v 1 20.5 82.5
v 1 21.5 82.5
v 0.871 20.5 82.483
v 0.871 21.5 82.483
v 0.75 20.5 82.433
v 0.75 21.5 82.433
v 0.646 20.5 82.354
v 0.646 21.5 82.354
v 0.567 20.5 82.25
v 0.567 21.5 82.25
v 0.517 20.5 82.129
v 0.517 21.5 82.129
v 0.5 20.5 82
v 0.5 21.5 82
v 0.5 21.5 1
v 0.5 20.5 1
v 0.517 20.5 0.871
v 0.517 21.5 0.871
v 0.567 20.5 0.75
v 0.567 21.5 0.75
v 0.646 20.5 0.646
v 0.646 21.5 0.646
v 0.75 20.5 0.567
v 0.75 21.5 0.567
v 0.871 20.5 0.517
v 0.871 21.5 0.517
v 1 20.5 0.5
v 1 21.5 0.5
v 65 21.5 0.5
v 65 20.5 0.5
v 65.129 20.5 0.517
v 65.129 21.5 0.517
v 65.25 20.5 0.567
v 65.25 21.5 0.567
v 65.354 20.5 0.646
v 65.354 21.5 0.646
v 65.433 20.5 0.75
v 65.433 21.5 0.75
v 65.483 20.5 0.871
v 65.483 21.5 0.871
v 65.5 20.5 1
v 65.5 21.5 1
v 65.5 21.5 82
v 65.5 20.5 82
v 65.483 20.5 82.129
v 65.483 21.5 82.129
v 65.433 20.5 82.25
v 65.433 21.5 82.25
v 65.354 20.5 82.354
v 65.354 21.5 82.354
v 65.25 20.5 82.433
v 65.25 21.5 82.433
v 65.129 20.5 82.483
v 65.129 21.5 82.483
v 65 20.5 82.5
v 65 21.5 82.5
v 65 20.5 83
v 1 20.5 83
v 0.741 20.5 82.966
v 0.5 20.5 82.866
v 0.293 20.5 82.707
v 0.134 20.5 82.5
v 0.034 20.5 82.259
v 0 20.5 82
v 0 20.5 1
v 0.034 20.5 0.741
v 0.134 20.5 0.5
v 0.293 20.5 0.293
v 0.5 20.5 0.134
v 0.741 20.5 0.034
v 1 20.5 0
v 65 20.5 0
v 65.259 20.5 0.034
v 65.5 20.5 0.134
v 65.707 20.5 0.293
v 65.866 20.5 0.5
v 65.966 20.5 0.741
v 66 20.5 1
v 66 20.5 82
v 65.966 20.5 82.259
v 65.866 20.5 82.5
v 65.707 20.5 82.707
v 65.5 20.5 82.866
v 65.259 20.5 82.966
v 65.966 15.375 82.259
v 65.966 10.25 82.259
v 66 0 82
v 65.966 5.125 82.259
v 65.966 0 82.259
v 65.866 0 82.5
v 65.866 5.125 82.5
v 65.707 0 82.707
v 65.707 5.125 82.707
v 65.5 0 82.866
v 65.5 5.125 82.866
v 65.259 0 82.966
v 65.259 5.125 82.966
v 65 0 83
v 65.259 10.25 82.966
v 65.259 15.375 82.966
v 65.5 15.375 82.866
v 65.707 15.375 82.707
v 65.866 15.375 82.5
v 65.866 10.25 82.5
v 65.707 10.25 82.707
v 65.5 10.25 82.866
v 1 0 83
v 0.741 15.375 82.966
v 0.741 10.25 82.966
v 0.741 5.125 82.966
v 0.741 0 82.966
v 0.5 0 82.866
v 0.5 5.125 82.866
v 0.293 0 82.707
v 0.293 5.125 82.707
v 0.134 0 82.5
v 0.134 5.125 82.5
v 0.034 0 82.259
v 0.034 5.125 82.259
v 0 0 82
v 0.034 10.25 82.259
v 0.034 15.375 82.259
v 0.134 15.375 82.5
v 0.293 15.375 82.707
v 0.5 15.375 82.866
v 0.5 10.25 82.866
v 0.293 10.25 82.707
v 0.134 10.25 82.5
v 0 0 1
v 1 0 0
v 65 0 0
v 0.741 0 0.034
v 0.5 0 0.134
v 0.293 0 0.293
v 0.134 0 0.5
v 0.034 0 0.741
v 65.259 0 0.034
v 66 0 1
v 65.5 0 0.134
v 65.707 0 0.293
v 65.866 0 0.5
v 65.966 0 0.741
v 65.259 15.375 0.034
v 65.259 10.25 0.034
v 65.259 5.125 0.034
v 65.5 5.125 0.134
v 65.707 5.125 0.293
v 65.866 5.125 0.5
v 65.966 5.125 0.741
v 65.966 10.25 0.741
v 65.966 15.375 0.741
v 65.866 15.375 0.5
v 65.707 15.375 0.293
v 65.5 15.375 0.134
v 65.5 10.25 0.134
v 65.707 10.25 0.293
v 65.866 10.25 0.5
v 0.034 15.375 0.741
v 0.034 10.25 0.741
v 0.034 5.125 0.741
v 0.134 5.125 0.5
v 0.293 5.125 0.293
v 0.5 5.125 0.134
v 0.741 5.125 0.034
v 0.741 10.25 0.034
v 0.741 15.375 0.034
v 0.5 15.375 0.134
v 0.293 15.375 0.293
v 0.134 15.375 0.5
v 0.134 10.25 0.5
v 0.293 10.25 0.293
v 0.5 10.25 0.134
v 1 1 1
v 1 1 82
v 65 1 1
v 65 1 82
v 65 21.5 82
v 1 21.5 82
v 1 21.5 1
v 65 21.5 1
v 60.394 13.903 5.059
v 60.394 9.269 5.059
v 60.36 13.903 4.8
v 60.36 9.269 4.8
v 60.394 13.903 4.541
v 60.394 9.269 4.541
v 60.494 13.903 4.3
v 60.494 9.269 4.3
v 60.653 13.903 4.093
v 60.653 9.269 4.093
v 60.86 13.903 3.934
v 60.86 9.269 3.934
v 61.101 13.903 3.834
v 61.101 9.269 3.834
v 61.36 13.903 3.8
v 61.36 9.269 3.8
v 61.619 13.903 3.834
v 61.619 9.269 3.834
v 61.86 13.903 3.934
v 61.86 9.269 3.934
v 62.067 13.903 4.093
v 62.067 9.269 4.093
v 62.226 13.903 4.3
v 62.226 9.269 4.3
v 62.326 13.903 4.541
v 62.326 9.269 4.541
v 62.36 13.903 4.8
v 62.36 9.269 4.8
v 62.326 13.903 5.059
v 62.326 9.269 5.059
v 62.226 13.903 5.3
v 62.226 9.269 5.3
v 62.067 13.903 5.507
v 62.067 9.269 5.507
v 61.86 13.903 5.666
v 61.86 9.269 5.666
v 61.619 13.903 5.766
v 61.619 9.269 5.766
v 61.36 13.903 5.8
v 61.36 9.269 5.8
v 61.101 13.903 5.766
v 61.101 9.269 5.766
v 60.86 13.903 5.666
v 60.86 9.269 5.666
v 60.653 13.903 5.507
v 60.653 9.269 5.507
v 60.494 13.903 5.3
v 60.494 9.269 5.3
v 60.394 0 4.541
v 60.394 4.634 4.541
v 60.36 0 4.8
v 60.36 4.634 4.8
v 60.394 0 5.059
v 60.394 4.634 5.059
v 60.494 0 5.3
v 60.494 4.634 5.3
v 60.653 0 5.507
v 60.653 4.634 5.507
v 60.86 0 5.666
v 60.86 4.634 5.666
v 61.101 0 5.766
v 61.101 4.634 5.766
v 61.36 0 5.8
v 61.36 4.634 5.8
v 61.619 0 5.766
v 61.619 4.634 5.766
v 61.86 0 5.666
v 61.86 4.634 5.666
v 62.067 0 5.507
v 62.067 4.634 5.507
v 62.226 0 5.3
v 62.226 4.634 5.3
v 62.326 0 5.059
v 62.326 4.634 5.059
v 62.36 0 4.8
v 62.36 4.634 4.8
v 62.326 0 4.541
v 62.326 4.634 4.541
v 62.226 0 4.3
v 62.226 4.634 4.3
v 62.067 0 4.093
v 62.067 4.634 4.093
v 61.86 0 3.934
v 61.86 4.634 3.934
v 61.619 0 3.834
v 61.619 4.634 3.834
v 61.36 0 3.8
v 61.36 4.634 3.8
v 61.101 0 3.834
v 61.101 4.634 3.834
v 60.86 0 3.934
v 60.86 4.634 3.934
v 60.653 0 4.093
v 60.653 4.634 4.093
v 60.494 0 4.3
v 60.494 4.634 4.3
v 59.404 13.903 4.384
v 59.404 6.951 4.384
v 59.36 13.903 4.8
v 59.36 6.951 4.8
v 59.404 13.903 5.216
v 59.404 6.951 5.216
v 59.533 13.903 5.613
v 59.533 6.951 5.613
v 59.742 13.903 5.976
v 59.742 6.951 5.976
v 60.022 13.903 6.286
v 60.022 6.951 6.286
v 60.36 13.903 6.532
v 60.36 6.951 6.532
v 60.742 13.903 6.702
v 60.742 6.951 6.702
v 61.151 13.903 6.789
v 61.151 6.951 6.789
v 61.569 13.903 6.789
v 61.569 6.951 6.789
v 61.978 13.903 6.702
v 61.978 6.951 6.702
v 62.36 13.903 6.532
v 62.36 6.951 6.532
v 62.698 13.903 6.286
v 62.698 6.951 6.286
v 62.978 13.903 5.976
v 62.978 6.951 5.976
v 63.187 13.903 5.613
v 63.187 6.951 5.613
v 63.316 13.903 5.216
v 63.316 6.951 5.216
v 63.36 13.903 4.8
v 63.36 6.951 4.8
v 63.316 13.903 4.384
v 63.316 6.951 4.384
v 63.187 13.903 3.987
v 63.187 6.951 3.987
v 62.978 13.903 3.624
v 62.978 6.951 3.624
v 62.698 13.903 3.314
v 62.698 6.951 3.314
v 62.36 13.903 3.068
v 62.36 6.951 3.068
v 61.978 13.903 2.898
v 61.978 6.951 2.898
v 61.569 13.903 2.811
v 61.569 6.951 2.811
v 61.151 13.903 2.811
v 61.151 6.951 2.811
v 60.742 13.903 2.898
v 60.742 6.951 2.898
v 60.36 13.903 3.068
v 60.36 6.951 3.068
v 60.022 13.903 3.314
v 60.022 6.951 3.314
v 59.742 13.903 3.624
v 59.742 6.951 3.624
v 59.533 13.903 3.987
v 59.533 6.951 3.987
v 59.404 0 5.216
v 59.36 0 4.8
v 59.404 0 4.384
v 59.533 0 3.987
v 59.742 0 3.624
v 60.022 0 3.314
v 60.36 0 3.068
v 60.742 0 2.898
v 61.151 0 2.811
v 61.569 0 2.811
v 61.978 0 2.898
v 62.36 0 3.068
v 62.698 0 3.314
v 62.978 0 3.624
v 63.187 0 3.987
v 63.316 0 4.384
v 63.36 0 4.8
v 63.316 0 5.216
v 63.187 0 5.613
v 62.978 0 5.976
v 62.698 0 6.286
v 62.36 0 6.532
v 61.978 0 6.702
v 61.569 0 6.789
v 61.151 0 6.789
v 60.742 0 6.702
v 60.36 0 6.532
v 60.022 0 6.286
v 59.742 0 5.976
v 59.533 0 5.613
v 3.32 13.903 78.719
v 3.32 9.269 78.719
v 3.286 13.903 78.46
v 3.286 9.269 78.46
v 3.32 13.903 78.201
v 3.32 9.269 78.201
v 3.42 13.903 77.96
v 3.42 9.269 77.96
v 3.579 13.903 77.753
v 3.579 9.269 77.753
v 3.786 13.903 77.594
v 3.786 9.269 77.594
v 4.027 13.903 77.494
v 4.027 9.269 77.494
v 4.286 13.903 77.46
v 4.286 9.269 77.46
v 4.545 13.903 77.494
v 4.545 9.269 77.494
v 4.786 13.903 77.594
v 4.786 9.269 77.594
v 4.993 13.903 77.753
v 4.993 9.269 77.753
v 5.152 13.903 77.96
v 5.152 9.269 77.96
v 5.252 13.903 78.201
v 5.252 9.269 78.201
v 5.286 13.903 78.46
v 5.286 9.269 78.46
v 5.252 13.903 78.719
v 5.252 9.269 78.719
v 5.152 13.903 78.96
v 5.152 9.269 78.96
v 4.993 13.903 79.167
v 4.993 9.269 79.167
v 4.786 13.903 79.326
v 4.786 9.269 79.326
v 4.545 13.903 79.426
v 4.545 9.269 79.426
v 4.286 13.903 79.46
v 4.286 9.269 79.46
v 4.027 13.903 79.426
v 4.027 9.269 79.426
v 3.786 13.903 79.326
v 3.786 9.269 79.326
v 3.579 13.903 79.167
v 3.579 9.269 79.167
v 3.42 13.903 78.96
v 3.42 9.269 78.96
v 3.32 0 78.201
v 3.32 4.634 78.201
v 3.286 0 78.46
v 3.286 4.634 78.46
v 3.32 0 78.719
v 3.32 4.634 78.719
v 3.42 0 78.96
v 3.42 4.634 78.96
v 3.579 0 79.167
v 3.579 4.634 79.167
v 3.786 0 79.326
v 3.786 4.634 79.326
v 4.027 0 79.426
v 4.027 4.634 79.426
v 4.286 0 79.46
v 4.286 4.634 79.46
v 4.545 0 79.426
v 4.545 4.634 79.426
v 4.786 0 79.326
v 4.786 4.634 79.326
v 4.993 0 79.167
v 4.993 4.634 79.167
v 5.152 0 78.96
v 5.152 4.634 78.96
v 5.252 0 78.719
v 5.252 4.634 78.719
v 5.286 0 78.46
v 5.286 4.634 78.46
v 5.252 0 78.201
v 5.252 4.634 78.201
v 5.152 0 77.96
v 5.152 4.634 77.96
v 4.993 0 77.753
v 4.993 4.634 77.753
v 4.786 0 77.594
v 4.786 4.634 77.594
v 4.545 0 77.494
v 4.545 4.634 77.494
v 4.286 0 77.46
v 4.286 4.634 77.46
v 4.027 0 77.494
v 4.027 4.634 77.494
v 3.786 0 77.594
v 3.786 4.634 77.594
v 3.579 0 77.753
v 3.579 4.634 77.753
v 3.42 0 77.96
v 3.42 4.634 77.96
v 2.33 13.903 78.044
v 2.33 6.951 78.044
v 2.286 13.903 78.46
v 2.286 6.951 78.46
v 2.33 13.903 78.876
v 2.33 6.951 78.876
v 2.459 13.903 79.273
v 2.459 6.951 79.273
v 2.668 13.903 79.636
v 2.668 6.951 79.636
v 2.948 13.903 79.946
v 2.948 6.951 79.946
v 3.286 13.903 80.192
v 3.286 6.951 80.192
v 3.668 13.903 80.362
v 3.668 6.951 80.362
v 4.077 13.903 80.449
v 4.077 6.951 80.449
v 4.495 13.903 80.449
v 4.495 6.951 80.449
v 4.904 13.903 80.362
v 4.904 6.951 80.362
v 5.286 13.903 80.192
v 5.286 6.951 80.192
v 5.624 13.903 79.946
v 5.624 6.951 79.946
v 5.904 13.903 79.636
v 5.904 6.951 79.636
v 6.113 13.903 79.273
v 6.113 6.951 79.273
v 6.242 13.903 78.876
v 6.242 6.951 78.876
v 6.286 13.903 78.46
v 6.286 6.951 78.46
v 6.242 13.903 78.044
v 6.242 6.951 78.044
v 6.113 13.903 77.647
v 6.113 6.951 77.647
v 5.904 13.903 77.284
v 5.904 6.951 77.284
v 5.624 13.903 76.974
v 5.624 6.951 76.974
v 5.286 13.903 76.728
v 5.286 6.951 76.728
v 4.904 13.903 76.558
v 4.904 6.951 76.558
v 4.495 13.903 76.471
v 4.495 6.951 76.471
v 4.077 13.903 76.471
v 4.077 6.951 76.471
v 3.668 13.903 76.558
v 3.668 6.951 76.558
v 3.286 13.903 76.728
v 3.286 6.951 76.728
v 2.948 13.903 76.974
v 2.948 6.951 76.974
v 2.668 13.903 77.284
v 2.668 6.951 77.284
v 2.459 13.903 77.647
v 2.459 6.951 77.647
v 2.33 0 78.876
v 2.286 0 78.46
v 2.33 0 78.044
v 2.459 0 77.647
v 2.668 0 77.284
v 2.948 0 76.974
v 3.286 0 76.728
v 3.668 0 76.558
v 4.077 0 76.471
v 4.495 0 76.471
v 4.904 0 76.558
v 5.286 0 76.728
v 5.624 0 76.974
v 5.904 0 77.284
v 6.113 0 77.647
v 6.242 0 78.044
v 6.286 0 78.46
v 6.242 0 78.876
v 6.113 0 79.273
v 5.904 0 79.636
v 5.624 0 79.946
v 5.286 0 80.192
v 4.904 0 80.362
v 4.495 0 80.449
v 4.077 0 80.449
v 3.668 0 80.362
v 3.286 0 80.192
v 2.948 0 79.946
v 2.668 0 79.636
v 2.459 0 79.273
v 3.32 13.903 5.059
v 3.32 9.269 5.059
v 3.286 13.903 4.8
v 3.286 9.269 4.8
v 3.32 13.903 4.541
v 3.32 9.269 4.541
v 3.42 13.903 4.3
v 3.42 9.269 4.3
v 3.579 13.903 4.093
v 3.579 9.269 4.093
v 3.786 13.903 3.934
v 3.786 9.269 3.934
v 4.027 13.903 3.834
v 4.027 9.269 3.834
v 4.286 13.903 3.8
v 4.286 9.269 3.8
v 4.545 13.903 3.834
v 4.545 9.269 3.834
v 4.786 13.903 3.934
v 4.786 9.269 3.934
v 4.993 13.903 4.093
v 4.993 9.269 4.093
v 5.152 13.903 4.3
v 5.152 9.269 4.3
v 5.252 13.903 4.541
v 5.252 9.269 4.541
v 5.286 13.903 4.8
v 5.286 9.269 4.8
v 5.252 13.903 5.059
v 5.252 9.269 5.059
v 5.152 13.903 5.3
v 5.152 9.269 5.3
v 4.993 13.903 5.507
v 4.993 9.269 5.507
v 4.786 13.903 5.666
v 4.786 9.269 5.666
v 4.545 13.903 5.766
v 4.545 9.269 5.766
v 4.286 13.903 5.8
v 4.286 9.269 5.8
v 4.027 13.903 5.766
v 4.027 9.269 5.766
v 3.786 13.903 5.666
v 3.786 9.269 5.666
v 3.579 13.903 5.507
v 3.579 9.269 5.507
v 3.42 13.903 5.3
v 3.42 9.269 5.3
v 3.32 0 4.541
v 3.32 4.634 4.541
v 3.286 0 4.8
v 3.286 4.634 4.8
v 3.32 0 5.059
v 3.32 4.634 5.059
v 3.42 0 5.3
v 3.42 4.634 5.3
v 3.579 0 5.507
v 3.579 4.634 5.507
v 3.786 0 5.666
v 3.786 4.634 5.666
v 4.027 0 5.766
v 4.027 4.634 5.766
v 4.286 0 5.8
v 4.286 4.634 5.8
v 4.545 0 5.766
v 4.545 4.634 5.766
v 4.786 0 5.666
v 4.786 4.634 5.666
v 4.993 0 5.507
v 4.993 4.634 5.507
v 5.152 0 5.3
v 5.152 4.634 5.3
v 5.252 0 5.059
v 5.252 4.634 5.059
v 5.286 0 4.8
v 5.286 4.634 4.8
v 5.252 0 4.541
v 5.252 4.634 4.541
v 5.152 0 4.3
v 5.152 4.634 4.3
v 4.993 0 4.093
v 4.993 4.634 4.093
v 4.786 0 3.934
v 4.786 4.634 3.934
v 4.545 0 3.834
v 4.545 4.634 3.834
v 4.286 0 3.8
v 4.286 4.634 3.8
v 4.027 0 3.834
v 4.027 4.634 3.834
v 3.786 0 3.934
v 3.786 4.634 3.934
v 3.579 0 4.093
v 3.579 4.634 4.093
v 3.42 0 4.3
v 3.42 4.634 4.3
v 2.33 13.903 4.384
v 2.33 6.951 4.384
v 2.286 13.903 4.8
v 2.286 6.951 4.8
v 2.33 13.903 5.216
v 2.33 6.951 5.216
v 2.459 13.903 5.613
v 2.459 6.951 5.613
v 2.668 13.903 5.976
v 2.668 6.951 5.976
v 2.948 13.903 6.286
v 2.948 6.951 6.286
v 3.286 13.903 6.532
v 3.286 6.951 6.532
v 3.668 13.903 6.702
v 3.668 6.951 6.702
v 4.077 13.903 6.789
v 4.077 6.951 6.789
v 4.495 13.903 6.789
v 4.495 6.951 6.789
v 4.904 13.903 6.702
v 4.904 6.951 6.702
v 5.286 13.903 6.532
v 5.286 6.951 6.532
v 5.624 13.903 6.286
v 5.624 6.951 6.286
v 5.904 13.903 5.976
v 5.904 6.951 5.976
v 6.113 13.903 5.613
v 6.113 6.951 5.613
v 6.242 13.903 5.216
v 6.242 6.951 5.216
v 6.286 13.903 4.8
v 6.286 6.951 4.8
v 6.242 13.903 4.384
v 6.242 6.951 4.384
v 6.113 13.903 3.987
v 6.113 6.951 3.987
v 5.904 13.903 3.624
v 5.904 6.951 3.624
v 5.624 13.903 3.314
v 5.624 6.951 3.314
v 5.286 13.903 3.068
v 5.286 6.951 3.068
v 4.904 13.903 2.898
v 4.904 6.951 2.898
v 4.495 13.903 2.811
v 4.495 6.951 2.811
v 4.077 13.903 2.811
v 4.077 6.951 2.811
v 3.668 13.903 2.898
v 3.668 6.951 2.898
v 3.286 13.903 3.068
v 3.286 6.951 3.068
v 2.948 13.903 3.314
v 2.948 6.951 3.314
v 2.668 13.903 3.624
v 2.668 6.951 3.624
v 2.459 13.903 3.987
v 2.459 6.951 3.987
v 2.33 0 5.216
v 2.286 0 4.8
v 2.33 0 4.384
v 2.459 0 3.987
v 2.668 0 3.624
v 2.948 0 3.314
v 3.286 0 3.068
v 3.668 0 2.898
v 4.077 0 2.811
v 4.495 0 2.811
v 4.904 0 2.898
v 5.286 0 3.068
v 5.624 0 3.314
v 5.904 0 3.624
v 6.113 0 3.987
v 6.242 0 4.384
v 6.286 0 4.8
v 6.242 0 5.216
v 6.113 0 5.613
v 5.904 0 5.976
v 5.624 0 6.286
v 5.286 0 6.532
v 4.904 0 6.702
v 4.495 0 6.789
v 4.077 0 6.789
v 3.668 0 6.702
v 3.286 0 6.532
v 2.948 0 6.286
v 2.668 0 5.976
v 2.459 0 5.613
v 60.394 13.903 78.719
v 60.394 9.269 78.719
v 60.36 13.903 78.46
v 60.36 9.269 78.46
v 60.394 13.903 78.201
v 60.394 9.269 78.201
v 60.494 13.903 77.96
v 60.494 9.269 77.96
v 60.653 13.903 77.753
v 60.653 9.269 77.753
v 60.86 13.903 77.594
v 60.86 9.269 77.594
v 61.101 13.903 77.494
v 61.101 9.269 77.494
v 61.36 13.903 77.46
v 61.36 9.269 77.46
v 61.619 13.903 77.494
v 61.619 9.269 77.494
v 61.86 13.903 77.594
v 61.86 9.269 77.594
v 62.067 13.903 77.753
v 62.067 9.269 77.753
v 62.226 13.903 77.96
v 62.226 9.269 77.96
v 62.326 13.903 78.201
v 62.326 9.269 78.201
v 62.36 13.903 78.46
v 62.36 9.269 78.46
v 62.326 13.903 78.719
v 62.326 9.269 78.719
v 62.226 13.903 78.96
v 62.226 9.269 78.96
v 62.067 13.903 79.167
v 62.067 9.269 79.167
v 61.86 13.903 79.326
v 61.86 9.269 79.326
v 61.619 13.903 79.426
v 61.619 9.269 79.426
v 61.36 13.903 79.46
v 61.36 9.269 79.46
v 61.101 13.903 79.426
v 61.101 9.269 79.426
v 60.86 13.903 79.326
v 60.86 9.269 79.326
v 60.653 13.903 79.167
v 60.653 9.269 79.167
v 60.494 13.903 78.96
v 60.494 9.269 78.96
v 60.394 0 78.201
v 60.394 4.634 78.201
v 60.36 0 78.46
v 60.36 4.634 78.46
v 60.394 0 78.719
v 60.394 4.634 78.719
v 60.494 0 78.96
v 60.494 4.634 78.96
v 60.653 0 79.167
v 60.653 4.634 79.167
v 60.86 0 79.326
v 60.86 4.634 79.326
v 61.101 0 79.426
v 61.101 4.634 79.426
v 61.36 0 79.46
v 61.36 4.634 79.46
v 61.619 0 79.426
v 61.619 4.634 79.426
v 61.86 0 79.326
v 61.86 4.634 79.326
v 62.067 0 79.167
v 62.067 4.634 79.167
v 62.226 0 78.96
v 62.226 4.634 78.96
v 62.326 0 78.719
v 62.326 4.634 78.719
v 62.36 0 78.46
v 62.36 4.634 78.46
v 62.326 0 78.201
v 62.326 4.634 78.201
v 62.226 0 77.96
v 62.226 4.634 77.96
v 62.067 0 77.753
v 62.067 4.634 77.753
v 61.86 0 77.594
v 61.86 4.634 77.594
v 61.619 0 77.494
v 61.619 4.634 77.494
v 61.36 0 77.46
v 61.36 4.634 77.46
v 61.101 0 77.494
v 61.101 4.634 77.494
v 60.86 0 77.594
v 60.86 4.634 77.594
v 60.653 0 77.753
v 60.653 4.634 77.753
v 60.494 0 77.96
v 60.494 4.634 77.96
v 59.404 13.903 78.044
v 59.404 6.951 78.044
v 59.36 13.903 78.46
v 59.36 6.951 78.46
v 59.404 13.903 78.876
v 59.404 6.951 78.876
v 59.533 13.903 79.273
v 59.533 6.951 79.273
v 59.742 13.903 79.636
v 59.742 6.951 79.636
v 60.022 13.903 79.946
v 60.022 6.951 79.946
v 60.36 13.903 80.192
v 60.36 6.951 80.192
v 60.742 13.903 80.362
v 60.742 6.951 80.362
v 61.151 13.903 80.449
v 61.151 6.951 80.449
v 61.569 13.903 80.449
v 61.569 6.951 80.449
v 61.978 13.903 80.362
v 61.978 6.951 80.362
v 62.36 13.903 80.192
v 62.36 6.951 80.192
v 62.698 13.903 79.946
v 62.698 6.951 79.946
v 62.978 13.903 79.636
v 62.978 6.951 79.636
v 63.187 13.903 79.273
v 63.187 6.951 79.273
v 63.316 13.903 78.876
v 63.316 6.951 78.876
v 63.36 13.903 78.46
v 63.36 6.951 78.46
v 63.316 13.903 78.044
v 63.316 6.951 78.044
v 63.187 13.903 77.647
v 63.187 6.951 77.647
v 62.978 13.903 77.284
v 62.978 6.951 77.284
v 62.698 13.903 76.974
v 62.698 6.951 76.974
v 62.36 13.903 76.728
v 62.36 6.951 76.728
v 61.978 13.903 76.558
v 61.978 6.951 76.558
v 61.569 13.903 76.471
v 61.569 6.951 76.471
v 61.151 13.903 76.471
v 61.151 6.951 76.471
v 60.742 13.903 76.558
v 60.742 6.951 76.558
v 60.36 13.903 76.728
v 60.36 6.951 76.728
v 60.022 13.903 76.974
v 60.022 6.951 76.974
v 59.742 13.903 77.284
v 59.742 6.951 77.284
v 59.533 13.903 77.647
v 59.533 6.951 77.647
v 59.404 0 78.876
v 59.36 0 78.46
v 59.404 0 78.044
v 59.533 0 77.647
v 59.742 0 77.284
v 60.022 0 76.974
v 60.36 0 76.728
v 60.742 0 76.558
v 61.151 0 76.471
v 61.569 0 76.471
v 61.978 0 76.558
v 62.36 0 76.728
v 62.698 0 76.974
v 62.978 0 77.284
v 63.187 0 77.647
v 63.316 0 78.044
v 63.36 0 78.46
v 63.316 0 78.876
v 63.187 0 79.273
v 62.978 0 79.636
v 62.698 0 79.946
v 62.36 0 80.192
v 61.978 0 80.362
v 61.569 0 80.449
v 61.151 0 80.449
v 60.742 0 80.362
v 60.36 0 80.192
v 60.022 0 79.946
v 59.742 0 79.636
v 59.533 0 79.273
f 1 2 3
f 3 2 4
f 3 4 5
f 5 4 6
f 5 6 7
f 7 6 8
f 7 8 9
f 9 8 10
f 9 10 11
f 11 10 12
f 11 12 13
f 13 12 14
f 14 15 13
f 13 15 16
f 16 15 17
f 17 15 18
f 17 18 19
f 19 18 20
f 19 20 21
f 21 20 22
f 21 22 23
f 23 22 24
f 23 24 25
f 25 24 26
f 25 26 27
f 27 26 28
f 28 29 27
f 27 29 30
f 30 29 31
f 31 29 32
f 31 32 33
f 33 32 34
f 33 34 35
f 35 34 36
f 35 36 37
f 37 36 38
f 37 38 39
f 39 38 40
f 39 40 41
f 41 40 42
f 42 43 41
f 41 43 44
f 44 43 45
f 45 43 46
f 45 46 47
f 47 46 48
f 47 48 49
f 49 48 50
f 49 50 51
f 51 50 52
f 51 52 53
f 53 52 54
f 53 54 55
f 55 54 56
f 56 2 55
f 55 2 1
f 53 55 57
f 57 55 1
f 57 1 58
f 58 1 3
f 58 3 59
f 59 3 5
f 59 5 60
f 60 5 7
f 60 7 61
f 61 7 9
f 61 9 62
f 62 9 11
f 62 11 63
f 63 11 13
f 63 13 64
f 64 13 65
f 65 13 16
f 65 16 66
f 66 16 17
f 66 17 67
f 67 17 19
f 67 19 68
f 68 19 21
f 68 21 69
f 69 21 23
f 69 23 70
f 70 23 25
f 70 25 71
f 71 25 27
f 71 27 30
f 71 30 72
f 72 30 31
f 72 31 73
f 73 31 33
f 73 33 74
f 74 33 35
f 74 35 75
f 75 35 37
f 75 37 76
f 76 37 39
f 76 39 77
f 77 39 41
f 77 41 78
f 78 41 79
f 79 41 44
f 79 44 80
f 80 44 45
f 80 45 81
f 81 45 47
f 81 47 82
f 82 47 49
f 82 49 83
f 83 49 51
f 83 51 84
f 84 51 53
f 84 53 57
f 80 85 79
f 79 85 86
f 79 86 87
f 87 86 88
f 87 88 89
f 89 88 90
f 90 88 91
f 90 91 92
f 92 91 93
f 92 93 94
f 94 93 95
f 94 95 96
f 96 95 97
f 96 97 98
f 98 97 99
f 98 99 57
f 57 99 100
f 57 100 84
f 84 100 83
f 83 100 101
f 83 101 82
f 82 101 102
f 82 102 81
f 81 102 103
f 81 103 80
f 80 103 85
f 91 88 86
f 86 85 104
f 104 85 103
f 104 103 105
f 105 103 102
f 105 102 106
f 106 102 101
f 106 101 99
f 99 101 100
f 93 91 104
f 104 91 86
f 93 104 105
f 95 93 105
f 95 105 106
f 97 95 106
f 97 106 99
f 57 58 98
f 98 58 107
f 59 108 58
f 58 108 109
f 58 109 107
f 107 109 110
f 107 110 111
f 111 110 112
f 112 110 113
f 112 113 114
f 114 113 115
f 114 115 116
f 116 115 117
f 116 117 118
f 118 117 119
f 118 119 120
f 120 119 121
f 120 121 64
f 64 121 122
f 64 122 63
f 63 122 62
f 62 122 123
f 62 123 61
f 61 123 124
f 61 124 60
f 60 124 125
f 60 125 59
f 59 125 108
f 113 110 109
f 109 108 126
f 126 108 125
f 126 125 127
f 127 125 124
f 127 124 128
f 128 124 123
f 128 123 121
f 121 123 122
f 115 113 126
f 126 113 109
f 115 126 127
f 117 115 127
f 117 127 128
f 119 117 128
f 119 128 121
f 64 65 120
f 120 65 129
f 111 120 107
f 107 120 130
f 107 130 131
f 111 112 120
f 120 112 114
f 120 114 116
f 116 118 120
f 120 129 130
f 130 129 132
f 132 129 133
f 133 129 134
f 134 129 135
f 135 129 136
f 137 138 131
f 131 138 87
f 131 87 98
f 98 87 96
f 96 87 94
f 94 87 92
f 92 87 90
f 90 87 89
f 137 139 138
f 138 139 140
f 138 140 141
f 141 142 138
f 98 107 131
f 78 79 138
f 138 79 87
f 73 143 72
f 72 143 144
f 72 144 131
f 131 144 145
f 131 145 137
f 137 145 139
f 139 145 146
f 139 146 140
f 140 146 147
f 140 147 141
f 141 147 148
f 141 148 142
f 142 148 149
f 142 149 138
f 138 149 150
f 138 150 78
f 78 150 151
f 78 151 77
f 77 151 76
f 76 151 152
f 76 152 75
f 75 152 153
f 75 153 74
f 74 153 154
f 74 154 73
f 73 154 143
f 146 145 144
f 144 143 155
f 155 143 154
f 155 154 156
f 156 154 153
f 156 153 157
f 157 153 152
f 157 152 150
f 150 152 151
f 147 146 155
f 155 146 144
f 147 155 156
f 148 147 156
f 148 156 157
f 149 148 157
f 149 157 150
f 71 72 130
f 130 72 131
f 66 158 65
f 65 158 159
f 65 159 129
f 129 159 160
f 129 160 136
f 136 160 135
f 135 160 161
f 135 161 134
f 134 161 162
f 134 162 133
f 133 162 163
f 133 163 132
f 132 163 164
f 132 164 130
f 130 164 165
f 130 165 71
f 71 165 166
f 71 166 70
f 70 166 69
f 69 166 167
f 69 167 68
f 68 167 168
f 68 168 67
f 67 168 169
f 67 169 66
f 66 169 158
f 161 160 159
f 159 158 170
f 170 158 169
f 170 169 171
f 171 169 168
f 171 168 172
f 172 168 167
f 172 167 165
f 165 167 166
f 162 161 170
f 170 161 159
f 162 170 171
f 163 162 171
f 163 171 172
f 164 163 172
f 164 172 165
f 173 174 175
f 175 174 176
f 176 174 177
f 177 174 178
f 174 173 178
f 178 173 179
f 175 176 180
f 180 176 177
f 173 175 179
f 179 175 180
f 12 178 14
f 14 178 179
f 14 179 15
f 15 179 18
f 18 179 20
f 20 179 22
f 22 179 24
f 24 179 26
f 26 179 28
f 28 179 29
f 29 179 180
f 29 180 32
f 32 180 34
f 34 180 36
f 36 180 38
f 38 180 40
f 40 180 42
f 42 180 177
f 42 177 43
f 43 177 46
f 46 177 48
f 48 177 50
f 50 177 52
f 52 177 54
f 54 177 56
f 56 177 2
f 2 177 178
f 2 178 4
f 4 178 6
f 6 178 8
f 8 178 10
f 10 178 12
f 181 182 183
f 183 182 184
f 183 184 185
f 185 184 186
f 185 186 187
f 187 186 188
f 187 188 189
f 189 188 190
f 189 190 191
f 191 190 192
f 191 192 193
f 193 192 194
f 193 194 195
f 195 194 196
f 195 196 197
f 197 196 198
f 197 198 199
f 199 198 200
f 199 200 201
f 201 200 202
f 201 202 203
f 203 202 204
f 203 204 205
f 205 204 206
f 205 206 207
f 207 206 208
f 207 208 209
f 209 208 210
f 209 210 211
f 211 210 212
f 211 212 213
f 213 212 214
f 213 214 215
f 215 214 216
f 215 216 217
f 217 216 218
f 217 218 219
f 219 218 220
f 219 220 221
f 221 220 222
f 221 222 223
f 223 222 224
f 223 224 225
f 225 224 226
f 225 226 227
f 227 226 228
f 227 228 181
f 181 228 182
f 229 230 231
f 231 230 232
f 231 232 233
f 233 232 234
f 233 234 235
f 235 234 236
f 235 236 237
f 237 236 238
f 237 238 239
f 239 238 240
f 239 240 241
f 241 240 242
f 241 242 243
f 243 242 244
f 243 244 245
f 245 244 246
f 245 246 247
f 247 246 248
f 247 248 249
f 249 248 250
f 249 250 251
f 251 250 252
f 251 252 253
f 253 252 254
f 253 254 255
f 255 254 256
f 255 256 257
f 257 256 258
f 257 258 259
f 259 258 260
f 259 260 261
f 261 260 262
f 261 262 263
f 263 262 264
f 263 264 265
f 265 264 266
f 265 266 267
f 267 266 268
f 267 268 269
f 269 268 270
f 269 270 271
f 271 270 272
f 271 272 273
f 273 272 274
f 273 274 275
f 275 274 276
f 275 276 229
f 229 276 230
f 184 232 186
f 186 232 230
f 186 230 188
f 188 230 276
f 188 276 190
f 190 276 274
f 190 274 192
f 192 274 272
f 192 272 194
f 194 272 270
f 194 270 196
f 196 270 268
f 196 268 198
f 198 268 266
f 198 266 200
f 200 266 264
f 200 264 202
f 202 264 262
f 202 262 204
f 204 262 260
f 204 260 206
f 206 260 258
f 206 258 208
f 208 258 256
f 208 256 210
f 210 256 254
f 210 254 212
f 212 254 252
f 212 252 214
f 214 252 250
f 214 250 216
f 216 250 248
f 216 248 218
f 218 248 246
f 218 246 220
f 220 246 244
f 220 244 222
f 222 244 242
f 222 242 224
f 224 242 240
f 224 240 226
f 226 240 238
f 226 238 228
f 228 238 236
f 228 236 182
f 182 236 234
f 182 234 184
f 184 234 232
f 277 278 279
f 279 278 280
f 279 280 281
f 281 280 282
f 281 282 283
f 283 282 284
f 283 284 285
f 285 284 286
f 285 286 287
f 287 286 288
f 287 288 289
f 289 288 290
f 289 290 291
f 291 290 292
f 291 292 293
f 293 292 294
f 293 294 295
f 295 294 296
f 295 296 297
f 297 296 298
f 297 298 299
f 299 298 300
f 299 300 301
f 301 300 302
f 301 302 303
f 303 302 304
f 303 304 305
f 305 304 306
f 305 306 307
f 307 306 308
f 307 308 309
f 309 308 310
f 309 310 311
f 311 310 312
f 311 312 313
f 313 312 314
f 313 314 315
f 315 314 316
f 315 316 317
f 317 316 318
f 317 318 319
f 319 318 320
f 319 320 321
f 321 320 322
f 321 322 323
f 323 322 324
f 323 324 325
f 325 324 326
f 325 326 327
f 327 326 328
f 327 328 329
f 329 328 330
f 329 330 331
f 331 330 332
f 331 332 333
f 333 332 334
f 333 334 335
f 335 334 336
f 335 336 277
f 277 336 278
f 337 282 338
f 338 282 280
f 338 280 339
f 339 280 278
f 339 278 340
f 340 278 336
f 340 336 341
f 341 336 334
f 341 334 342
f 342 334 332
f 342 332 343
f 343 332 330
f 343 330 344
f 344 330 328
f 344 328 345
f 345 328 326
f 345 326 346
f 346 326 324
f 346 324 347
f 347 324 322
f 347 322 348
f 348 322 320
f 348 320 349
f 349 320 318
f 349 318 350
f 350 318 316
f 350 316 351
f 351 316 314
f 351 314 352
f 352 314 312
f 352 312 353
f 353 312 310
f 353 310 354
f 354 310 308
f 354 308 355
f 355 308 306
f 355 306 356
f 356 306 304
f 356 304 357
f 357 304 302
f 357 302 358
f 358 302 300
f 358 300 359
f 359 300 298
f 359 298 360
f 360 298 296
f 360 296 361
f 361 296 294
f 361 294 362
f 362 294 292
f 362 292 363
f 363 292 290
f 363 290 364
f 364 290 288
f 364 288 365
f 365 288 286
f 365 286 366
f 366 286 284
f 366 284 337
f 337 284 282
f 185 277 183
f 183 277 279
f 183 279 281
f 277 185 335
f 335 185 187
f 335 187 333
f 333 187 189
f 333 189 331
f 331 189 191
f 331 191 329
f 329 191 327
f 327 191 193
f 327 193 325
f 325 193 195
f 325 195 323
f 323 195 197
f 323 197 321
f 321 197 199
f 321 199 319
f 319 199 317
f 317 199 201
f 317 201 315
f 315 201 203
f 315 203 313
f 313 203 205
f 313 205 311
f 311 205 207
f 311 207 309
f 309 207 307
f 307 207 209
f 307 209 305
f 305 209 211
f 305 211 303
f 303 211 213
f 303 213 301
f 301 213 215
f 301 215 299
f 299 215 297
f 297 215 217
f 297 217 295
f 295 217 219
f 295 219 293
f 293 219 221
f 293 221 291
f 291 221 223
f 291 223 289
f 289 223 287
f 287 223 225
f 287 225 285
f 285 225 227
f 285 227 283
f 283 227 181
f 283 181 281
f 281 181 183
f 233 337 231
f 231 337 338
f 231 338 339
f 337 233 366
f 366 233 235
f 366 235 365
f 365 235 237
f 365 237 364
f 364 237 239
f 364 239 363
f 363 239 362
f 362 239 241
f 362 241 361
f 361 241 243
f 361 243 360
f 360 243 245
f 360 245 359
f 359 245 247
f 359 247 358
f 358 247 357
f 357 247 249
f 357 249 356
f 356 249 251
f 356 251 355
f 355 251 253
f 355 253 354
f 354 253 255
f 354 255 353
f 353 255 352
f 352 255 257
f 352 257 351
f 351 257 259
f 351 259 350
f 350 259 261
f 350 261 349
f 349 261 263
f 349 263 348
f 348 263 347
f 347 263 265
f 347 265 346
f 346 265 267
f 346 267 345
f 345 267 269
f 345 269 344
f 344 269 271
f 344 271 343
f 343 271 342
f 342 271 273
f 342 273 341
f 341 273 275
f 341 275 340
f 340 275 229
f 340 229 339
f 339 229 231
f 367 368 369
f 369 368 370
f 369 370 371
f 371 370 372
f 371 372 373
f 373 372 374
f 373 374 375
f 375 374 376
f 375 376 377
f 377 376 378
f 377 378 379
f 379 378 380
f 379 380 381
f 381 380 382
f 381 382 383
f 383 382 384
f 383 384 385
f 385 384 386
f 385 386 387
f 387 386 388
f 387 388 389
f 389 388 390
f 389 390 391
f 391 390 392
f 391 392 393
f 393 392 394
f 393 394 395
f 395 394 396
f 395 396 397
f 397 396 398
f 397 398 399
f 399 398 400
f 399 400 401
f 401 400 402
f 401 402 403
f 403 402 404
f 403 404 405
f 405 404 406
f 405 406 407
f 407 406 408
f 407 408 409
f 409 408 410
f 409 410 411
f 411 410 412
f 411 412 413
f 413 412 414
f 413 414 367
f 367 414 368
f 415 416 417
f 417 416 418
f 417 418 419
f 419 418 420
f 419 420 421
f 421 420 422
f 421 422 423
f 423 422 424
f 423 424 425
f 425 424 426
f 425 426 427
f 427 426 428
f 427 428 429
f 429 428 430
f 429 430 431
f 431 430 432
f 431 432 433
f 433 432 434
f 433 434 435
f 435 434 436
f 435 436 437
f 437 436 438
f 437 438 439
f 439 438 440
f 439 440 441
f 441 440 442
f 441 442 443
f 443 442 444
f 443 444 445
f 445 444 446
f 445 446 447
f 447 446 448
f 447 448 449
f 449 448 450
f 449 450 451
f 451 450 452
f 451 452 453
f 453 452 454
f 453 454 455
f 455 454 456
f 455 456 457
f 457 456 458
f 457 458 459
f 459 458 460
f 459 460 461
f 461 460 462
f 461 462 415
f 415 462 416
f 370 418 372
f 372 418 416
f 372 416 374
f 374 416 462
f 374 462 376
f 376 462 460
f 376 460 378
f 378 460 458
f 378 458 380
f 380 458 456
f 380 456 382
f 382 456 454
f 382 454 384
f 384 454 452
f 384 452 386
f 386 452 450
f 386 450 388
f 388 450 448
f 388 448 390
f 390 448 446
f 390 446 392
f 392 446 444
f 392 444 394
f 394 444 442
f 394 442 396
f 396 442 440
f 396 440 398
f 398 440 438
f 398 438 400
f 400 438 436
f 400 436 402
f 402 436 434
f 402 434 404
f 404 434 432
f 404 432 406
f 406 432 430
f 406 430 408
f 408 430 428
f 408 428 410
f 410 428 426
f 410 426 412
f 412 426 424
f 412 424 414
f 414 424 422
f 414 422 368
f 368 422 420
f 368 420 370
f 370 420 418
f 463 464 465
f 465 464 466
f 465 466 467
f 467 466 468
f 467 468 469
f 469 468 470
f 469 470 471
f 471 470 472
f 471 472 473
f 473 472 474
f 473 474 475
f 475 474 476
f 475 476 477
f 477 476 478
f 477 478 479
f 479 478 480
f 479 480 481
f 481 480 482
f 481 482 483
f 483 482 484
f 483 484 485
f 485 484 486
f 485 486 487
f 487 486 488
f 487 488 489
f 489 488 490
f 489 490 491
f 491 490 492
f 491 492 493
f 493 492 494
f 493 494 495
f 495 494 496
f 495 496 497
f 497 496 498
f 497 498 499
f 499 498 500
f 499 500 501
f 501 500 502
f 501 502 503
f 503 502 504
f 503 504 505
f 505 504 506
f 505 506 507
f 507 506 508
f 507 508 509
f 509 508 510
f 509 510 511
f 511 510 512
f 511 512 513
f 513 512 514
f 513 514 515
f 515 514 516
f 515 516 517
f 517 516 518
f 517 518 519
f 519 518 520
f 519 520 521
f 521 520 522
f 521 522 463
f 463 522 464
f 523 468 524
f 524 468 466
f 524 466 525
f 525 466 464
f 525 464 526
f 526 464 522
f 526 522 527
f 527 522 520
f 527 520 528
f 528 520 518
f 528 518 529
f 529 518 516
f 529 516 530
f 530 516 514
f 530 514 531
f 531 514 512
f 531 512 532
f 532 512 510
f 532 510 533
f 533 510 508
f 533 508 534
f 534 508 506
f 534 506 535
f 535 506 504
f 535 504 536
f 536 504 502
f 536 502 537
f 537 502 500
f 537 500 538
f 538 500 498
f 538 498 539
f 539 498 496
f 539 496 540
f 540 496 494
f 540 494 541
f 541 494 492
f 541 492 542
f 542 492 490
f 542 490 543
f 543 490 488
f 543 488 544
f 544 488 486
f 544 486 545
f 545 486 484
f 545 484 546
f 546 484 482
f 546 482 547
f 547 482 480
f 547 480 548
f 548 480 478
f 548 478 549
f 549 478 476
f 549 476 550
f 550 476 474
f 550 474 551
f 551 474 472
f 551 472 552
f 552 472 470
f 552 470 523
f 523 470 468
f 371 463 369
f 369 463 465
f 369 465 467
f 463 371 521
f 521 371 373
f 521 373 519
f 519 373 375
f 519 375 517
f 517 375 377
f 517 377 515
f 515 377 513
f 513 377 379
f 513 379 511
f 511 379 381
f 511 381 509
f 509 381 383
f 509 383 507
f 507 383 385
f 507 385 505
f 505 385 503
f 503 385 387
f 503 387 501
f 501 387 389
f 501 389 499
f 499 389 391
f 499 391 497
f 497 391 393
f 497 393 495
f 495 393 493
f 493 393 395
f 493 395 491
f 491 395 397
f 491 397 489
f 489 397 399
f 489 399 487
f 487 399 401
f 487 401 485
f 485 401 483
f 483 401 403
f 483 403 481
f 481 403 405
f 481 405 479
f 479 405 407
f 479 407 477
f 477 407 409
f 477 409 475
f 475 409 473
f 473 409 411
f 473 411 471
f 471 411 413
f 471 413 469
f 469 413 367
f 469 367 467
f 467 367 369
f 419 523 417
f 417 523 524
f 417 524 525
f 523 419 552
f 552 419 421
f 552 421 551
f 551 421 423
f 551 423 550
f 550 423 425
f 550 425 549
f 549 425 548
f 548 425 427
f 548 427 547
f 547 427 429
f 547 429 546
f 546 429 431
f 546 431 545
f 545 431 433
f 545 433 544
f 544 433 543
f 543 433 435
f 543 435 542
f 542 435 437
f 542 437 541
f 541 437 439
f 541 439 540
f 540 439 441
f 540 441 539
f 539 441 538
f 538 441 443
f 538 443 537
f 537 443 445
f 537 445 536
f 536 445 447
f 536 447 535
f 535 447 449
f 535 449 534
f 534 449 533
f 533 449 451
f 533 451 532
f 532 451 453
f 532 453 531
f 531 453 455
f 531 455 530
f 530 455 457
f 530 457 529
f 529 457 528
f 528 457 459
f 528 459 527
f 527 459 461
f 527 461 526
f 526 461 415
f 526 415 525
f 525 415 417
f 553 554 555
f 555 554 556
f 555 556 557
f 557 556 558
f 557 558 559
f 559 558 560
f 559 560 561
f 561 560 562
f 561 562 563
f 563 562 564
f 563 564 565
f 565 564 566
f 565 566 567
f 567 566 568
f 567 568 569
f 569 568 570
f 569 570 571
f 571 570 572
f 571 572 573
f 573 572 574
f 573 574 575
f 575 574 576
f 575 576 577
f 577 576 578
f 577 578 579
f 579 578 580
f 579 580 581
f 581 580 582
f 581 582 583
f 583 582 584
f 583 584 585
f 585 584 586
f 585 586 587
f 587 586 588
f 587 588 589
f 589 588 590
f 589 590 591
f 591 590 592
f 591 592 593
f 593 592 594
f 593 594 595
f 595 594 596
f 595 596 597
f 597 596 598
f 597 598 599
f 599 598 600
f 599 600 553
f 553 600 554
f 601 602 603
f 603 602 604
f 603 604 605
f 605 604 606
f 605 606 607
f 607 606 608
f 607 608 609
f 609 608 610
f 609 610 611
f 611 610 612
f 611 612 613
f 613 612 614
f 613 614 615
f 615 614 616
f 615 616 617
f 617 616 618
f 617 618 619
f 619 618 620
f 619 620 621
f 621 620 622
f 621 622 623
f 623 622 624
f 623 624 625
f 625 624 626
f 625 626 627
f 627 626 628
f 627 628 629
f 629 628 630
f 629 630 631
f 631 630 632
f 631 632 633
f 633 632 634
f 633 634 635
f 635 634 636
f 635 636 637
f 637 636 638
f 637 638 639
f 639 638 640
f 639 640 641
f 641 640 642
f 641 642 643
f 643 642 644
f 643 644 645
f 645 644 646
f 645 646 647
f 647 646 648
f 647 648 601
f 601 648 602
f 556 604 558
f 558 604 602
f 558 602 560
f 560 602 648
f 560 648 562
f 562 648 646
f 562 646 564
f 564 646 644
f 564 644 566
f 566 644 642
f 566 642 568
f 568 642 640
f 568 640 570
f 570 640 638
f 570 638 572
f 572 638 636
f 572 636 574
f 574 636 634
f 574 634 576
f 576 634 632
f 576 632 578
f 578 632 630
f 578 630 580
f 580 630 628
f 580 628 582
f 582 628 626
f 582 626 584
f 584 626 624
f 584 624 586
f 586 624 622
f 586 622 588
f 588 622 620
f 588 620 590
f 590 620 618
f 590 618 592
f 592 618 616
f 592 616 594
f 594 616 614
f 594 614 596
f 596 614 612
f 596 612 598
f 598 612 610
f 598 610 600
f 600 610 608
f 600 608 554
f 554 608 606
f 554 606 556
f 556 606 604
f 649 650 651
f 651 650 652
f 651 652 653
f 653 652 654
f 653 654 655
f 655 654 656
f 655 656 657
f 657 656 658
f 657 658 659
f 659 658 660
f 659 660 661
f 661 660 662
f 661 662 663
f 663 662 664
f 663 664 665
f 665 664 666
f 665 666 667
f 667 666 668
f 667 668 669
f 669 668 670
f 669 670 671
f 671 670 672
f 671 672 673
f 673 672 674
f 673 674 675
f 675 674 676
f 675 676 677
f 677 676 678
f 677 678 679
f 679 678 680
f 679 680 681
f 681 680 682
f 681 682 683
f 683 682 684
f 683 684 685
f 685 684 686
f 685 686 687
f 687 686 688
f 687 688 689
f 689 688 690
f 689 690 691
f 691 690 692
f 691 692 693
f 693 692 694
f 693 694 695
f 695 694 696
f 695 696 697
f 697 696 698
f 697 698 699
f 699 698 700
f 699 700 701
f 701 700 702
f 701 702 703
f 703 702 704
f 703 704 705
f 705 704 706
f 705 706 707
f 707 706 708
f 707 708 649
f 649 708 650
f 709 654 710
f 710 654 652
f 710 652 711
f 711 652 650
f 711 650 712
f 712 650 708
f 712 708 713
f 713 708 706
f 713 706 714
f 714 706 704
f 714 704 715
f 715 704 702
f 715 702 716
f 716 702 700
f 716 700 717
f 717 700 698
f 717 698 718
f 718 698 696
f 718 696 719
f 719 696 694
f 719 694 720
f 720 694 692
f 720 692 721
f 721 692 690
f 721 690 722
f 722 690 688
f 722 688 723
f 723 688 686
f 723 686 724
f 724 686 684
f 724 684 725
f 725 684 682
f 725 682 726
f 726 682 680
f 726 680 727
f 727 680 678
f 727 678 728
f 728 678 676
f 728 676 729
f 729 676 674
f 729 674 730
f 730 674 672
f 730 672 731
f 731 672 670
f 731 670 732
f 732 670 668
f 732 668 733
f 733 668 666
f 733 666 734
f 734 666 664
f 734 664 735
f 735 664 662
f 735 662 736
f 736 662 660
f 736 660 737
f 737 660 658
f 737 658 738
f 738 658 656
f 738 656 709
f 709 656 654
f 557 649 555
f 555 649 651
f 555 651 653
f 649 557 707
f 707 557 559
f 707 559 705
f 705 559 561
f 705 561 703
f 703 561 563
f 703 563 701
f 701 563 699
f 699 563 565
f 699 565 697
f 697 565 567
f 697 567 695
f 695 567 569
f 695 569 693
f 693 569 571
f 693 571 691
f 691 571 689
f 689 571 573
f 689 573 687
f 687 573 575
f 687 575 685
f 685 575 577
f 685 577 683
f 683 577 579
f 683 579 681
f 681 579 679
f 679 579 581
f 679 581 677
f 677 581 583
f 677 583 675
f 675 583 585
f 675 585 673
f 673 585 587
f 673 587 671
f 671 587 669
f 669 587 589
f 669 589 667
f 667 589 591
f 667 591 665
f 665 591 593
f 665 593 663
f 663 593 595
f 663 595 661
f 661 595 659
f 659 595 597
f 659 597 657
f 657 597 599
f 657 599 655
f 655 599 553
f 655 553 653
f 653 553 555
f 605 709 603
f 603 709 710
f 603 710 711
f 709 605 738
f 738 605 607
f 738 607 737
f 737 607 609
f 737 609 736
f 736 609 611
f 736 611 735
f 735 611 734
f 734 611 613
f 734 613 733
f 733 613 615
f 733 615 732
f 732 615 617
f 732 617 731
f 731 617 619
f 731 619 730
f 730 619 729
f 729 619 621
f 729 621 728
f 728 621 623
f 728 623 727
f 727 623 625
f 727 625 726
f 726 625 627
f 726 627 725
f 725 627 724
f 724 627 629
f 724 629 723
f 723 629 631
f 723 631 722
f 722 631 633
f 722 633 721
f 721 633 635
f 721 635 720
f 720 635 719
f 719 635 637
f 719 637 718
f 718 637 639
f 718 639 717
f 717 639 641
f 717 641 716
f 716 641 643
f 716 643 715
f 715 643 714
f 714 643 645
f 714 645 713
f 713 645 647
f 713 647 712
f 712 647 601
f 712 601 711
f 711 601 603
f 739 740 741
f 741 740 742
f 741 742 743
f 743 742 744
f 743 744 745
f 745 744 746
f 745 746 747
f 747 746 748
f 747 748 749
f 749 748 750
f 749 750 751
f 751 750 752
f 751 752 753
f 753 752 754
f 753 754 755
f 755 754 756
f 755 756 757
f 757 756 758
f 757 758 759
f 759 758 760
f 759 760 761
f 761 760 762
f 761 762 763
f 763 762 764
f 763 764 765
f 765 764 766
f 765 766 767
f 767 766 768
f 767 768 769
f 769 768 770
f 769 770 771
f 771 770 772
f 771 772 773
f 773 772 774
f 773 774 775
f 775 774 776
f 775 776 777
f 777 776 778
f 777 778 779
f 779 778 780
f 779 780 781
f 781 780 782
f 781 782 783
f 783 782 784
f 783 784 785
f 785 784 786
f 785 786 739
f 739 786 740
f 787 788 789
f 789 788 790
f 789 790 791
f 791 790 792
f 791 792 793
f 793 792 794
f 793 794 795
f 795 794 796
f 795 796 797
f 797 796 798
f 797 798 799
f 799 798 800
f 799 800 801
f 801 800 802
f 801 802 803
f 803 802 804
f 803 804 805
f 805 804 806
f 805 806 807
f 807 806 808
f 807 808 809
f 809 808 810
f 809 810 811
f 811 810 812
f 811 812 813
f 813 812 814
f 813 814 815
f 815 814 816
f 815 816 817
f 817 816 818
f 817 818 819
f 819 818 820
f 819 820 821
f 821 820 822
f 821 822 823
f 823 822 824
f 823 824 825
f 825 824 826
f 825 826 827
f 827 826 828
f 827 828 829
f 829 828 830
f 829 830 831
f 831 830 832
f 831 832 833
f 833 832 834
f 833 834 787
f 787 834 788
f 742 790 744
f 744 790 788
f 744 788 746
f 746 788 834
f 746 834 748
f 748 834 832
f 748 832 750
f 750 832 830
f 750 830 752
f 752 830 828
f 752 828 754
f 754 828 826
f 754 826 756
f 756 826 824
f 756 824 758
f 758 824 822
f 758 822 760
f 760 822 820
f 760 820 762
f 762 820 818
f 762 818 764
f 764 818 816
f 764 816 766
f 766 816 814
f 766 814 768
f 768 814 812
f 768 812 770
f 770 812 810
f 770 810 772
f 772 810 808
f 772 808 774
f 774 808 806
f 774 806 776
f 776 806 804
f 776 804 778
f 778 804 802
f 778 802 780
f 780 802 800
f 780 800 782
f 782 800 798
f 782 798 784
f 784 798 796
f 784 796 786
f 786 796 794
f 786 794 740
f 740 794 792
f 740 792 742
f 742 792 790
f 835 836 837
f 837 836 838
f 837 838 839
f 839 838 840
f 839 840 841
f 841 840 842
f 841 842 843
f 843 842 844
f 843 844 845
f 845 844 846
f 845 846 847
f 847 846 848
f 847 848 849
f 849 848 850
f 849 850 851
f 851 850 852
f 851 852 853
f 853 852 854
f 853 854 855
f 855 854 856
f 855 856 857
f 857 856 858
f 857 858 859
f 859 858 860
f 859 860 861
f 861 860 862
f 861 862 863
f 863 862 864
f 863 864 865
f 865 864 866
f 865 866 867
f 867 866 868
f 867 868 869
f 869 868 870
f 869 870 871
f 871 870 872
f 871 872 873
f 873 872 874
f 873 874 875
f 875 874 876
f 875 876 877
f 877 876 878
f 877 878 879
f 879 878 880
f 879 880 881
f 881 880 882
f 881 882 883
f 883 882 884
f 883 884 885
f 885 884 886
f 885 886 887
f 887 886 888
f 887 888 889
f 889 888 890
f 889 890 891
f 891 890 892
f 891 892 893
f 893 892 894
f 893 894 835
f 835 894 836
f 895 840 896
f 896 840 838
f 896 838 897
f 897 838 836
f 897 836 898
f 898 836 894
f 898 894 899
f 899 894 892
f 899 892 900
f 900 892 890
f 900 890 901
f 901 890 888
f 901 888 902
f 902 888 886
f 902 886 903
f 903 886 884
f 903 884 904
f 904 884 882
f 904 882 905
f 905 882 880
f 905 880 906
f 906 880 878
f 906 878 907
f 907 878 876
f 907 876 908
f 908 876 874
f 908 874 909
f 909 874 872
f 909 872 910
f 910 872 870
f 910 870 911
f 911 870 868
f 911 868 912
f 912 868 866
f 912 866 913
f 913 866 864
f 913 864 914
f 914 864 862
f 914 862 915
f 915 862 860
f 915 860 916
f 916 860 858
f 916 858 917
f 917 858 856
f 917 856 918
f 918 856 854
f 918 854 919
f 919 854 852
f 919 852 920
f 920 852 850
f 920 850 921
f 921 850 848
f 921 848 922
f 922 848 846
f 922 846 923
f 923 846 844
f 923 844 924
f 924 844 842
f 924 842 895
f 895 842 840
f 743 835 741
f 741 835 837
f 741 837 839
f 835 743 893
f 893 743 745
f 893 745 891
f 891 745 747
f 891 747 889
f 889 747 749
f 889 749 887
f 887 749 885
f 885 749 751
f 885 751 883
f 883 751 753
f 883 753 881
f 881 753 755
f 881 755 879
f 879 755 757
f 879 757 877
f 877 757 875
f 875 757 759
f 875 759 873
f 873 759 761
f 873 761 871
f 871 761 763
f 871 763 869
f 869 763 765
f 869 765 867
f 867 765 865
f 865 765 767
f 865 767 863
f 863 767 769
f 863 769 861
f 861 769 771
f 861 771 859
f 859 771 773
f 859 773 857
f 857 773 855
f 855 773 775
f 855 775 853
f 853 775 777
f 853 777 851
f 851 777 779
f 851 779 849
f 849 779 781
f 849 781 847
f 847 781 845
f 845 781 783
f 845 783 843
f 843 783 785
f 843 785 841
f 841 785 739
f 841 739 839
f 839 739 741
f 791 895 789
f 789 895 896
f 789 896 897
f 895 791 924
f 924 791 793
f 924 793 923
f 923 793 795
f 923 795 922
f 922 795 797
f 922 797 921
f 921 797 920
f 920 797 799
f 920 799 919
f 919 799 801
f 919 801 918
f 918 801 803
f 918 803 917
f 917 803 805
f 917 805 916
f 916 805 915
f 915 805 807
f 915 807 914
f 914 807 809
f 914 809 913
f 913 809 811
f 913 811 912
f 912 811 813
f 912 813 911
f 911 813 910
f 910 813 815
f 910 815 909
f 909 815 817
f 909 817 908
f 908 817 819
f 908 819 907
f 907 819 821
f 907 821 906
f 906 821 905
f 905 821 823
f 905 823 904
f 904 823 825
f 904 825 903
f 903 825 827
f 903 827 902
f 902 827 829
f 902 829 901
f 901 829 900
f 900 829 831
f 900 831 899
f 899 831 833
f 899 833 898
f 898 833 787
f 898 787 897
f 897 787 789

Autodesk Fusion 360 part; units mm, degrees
sketch "Sketch1" plane through (0, 0, 0) normal (0, 1, 0) x (1, 0, 0)
  line L0 (0, 0) -> (66, 0)
  line L1 (66, 0) -> (66, -83)
  line L2 (66, -83) -> (0, -83)
  line L3 (0, -83) -> (0, 0)
  circle A0 centre (4.286, -4.8) radius 2
  circle A1 centre (4.286, -4.8) radius 1
  circle A2 centre (61.36, -4.8) radius 2
  circle A3 centre (61.36, -4.8) radius 1
  circle A4 centre (4.286, -78.46) radius 2
  circle A5 centre (4.286, -78.46) radius 1
  circle A6 centre (61.36, -78.46) radius 2
  circle A7 centre (61.36, -78.46) radius 1
  line L4 (65, -82) -> (1, -82)
  line L5 (1, -82) -> (1, -1)
  line L6 (1, -1) -> (65, -1)
  line L7 (65, -1) -> (65, -82)
  dimension "d1" = 66
  dimension "d2" = 83
  dimension "d5" = 4
  dimension "d6" = 2
  dimension "d8" = 4
  dimension "d9" = 2
  dimension "d11" = 4
  dimension "d12" = 2
  dimension "d14" = 4
  dimension "d15" = 2
  dimension "d16" = 1
extrude "Extrude1" add sketch "Sketch1" along normal blind 21.5 contours L0 L1 L2 L3 makes body 1
extrude "Extrude2" add sketch "Sketch1" along normal blind 1 contours A0 | A1 | A2 | A3 | A4 | A5 | A6 | A7 | L4 L5 L6 L7 bodies 1
extrude "Extrude3" add sketch "Sketch1" along normal blind 13.903 separate body contours A0 | A2 | A4 | A6 makes body 2 at (63.3501, 4.6343, 4.9991) makes body 3 at (2.443, 9.2687, 79.2369) makes body 4 at (6.2761, 4.6343, 4.9991) makes body 5 at (63.3203, 9.2687, 78.8563)
fillet "Fillet1" radius 1 4 edges at (0, 10.75, 0) (66, 10.75, 0) (66, 10.75, 83) (0, 10.75, 83) on bodies 1
sketch "Sketch2" plane through (0, 21.5, 0) normal (0, 1, 0) x (-1, 0, 0)
  arc A0 (0, 82) -> (-1, 83) centre (-1, 82) ccw
  line L0 (-1, 83) -> (-65, 83)
  arc A1 (-65, 83) -> (-66, 82) centre (-65, 82) ccw
  line L1 (-66, 82) -> (-66, 1)
  arc A2 (-66, 1) -> (-65, 0) centre (-65, 1) ccw
  line L2 (-65, 0) -> (-1, 0)
  arc A3 (-1, 0) -> (0, 1) centre (-1, 1) ccw
  line L3 (0, 1) -> (0, 82)
  line L4 (-1, 1) -> (-65, 1)
  line L5 (-65, 1) -> (-65, 82)
  line L6 (-65, 82) -> (-1, 82)
  line L7 (-1, 82) -> (-1, 1)
  arc A4 (-65, 82.5) -> (-65.5, 82) centre (-65, 82) ccw
  line L8 (-65.5, 82) -> (-65.5, 1)
  arc A5 (-65.5, 1) -> (-65, 0.5) centre (-65, 1) ccw
  line L9 (-65, 0.5) -> (-1, 0.5)
  arc A6 (-1, 0.5) -> (-0.5, 1) centre (-1, 1) ccw
  line L10 (-0.5, 1) -> (-0.5, 82)
  arc A7 (-0.5, 82) -> (-1, 82.5) centre (-1, 82) ccw
  line L11 (-1, 82.5) -> (-65, 82.5)
  dimension "d25" = -0.5
extrude "Extrude4" cut sketch "Sketch2" against normal blind 1 contours A0 L0 A1 L1 A2 L2 A3 L3 bodies 1
